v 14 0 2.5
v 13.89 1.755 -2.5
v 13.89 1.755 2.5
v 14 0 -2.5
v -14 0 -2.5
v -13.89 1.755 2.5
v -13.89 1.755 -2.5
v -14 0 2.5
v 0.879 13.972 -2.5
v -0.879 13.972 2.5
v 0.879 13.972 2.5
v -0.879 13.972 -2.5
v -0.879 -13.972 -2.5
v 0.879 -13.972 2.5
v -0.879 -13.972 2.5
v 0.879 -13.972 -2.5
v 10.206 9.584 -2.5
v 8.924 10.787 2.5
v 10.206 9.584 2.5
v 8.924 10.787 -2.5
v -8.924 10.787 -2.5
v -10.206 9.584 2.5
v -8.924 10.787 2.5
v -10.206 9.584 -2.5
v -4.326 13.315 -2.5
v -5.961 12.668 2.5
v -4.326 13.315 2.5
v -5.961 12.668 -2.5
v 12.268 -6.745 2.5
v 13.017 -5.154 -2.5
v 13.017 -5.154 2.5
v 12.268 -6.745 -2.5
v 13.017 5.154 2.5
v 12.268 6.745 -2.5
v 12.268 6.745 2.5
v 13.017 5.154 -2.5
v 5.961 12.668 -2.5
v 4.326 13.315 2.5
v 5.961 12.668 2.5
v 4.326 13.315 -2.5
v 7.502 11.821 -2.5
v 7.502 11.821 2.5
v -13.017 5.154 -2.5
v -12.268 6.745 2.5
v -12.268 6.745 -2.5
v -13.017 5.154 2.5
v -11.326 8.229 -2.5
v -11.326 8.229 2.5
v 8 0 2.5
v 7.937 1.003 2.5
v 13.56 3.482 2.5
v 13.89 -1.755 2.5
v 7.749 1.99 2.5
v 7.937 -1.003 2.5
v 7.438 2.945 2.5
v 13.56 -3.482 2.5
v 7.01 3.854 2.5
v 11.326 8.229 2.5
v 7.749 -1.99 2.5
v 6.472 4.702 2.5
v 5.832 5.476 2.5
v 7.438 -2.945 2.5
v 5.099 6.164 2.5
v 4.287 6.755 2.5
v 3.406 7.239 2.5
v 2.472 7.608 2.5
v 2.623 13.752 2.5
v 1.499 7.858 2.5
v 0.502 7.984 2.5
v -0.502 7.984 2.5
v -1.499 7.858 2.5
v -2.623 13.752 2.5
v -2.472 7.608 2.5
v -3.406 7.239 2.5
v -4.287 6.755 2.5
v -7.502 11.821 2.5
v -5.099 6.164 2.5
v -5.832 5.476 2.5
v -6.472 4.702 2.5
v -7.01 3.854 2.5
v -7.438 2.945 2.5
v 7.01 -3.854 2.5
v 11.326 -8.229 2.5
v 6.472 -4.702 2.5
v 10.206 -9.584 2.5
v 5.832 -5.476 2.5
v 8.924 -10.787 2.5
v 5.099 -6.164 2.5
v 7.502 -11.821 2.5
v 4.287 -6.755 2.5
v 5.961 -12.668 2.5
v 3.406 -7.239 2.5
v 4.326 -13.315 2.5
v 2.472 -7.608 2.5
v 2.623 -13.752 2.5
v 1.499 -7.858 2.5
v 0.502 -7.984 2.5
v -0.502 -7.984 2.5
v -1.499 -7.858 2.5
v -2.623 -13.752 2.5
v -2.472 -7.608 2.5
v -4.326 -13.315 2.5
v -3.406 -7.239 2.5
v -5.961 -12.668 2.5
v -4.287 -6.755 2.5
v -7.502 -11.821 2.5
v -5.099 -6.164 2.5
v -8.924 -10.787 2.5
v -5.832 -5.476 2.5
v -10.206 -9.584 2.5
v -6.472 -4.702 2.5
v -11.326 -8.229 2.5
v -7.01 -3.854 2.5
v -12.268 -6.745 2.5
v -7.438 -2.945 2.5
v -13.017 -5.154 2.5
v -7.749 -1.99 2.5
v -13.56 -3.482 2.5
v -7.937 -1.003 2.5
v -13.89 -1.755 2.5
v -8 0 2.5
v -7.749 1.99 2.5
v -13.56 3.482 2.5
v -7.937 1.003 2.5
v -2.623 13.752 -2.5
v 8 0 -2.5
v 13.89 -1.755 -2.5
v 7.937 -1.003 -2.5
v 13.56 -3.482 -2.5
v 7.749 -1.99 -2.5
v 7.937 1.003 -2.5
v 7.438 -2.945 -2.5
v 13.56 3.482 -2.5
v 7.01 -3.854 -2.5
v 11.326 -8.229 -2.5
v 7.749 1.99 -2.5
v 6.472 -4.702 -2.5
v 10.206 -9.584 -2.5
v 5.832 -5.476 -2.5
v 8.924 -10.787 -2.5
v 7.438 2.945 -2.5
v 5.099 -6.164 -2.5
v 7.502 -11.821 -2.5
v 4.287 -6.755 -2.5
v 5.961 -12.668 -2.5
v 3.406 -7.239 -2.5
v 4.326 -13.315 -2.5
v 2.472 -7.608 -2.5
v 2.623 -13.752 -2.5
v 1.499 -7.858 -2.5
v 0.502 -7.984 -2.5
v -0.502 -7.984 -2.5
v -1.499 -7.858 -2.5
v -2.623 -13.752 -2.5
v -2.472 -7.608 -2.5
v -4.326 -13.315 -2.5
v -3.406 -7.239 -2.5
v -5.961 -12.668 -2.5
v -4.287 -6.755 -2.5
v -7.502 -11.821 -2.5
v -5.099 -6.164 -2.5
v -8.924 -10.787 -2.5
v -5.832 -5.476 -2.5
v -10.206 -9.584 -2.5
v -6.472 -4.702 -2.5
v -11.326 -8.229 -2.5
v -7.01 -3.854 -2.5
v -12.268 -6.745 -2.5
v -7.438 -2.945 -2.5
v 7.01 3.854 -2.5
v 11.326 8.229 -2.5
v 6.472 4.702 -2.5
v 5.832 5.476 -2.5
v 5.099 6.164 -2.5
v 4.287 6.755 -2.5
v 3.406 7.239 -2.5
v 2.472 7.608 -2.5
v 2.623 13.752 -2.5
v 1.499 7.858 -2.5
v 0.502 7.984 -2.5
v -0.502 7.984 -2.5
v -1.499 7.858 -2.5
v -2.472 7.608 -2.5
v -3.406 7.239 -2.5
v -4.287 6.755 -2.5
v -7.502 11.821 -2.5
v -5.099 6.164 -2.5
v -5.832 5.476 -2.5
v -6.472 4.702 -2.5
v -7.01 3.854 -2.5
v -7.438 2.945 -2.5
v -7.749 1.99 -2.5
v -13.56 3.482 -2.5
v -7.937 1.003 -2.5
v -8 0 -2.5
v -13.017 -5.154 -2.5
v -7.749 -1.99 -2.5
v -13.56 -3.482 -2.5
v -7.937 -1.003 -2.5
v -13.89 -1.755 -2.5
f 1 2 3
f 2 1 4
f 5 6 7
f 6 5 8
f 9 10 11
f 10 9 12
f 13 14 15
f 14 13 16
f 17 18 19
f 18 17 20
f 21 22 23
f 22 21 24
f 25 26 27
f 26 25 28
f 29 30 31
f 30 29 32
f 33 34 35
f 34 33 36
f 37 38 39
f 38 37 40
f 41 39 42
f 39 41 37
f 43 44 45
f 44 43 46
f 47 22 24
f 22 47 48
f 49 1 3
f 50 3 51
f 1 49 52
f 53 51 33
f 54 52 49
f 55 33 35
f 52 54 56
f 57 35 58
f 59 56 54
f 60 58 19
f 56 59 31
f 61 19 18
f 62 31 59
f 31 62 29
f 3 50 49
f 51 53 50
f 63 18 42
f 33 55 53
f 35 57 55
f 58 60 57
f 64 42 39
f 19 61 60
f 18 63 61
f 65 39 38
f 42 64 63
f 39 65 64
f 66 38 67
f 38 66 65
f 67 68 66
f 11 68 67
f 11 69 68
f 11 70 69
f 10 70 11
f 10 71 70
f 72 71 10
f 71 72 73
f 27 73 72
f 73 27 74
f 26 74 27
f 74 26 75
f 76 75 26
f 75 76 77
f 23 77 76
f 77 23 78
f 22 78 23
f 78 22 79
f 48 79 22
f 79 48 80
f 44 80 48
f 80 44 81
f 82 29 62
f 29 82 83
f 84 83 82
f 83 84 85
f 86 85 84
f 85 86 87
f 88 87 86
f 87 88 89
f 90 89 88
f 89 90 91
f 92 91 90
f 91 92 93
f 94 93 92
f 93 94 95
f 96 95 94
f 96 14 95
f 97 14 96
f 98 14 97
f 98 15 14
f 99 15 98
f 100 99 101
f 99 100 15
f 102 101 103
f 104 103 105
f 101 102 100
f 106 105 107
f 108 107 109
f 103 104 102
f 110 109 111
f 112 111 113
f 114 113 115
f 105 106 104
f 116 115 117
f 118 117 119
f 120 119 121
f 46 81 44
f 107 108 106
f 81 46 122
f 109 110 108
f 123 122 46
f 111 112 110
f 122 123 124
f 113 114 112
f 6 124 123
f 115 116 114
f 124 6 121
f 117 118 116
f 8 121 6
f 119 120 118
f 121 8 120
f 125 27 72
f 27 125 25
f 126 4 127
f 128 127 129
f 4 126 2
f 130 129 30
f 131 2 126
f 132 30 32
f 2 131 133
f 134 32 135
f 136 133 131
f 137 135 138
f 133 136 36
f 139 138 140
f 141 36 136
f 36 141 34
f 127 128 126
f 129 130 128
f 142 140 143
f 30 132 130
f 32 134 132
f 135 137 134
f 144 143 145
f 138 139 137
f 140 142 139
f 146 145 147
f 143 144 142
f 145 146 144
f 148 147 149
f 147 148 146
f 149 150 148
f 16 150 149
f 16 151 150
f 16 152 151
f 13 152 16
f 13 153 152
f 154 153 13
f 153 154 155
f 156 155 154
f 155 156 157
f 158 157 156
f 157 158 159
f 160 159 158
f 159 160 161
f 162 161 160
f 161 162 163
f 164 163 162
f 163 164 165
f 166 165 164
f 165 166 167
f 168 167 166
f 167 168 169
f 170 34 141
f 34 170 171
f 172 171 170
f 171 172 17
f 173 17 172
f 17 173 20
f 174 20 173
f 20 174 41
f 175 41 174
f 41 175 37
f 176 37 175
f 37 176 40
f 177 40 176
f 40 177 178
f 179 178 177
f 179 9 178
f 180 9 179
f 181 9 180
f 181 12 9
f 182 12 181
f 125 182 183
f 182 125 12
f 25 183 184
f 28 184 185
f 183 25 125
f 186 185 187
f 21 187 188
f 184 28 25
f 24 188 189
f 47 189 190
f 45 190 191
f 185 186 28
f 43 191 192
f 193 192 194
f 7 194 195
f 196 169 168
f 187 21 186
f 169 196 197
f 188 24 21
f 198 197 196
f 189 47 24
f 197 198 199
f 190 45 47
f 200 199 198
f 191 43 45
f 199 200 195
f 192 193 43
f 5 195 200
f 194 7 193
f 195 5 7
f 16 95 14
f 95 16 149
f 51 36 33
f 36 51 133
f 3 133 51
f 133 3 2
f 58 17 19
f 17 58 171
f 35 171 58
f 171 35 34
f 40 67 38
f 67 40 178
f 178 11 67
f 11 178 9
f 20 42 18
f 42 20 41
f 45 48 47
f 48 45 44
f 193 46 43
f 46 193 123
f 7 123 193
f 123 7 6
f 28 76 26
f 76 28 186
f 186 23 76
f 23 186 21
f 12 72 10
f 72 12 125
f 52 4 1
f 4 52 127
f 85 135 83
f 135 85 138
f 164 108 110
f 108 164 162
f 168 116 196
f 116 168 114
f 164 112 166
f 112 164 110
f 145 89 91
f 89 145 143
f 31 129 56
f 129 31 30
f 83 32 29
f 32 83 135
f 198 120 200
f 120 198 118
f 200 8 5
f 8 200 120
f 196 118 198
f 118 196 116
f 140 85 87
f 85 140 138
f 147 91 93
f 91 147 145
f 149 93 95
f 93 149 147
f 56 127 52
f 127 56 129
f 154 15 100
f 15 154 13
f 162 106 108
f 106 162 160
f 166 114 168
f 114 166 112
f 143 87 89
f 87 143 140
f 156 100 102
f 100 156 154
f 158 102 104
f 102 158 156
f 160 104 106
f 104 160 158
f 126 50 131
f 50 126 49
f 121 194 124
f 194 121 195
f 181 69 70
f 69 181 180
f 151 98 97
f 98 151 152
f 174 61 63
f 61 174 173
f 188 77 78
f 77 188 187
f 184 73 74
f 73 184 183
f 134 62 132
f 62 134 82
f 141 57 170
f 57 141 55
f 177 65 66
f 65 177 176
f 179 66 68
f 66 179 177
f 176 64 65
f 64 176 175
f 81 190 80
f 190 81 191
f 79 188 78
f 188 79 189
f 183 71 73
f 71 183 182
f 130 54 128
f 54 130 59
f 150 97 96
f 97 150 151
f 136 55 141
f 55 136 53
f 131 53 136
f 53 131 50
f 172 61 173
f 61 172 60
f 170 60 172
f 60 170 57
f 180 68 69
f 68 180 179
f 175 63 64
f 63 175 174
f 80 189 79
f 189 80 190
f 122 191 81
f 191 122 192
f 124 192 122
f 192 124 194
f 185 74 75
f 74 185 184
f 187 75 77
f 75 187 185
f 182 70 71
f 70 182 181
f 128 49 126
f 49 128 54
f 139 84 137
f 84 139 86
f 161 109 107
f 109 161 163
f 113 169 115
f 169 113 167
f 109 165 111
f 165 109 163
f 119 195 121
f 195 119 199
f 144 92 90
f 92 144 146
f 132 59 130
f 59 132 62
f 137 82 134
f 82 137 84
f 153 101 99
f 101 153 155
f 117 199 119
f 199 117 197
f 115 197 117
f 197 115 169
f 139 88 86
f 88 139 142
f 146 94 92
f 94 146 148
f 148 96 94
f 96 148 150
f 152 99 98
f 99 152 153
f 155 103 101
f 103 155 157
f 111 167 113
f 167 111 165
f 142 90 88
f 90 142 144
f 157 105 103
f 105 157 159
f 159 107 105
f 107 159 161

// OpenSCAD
$fn = 50;


difference() {
	union() {
		translate(v = [0, 0, -2.5000000000]) {
			cylinder(h = 5, r = 14.0000000000);
		}
	}
	union() {
		translate(v = [0, 0, -100.0000000000]) {
			cylinder(h = 200, r = 8);
		}
	}
}
